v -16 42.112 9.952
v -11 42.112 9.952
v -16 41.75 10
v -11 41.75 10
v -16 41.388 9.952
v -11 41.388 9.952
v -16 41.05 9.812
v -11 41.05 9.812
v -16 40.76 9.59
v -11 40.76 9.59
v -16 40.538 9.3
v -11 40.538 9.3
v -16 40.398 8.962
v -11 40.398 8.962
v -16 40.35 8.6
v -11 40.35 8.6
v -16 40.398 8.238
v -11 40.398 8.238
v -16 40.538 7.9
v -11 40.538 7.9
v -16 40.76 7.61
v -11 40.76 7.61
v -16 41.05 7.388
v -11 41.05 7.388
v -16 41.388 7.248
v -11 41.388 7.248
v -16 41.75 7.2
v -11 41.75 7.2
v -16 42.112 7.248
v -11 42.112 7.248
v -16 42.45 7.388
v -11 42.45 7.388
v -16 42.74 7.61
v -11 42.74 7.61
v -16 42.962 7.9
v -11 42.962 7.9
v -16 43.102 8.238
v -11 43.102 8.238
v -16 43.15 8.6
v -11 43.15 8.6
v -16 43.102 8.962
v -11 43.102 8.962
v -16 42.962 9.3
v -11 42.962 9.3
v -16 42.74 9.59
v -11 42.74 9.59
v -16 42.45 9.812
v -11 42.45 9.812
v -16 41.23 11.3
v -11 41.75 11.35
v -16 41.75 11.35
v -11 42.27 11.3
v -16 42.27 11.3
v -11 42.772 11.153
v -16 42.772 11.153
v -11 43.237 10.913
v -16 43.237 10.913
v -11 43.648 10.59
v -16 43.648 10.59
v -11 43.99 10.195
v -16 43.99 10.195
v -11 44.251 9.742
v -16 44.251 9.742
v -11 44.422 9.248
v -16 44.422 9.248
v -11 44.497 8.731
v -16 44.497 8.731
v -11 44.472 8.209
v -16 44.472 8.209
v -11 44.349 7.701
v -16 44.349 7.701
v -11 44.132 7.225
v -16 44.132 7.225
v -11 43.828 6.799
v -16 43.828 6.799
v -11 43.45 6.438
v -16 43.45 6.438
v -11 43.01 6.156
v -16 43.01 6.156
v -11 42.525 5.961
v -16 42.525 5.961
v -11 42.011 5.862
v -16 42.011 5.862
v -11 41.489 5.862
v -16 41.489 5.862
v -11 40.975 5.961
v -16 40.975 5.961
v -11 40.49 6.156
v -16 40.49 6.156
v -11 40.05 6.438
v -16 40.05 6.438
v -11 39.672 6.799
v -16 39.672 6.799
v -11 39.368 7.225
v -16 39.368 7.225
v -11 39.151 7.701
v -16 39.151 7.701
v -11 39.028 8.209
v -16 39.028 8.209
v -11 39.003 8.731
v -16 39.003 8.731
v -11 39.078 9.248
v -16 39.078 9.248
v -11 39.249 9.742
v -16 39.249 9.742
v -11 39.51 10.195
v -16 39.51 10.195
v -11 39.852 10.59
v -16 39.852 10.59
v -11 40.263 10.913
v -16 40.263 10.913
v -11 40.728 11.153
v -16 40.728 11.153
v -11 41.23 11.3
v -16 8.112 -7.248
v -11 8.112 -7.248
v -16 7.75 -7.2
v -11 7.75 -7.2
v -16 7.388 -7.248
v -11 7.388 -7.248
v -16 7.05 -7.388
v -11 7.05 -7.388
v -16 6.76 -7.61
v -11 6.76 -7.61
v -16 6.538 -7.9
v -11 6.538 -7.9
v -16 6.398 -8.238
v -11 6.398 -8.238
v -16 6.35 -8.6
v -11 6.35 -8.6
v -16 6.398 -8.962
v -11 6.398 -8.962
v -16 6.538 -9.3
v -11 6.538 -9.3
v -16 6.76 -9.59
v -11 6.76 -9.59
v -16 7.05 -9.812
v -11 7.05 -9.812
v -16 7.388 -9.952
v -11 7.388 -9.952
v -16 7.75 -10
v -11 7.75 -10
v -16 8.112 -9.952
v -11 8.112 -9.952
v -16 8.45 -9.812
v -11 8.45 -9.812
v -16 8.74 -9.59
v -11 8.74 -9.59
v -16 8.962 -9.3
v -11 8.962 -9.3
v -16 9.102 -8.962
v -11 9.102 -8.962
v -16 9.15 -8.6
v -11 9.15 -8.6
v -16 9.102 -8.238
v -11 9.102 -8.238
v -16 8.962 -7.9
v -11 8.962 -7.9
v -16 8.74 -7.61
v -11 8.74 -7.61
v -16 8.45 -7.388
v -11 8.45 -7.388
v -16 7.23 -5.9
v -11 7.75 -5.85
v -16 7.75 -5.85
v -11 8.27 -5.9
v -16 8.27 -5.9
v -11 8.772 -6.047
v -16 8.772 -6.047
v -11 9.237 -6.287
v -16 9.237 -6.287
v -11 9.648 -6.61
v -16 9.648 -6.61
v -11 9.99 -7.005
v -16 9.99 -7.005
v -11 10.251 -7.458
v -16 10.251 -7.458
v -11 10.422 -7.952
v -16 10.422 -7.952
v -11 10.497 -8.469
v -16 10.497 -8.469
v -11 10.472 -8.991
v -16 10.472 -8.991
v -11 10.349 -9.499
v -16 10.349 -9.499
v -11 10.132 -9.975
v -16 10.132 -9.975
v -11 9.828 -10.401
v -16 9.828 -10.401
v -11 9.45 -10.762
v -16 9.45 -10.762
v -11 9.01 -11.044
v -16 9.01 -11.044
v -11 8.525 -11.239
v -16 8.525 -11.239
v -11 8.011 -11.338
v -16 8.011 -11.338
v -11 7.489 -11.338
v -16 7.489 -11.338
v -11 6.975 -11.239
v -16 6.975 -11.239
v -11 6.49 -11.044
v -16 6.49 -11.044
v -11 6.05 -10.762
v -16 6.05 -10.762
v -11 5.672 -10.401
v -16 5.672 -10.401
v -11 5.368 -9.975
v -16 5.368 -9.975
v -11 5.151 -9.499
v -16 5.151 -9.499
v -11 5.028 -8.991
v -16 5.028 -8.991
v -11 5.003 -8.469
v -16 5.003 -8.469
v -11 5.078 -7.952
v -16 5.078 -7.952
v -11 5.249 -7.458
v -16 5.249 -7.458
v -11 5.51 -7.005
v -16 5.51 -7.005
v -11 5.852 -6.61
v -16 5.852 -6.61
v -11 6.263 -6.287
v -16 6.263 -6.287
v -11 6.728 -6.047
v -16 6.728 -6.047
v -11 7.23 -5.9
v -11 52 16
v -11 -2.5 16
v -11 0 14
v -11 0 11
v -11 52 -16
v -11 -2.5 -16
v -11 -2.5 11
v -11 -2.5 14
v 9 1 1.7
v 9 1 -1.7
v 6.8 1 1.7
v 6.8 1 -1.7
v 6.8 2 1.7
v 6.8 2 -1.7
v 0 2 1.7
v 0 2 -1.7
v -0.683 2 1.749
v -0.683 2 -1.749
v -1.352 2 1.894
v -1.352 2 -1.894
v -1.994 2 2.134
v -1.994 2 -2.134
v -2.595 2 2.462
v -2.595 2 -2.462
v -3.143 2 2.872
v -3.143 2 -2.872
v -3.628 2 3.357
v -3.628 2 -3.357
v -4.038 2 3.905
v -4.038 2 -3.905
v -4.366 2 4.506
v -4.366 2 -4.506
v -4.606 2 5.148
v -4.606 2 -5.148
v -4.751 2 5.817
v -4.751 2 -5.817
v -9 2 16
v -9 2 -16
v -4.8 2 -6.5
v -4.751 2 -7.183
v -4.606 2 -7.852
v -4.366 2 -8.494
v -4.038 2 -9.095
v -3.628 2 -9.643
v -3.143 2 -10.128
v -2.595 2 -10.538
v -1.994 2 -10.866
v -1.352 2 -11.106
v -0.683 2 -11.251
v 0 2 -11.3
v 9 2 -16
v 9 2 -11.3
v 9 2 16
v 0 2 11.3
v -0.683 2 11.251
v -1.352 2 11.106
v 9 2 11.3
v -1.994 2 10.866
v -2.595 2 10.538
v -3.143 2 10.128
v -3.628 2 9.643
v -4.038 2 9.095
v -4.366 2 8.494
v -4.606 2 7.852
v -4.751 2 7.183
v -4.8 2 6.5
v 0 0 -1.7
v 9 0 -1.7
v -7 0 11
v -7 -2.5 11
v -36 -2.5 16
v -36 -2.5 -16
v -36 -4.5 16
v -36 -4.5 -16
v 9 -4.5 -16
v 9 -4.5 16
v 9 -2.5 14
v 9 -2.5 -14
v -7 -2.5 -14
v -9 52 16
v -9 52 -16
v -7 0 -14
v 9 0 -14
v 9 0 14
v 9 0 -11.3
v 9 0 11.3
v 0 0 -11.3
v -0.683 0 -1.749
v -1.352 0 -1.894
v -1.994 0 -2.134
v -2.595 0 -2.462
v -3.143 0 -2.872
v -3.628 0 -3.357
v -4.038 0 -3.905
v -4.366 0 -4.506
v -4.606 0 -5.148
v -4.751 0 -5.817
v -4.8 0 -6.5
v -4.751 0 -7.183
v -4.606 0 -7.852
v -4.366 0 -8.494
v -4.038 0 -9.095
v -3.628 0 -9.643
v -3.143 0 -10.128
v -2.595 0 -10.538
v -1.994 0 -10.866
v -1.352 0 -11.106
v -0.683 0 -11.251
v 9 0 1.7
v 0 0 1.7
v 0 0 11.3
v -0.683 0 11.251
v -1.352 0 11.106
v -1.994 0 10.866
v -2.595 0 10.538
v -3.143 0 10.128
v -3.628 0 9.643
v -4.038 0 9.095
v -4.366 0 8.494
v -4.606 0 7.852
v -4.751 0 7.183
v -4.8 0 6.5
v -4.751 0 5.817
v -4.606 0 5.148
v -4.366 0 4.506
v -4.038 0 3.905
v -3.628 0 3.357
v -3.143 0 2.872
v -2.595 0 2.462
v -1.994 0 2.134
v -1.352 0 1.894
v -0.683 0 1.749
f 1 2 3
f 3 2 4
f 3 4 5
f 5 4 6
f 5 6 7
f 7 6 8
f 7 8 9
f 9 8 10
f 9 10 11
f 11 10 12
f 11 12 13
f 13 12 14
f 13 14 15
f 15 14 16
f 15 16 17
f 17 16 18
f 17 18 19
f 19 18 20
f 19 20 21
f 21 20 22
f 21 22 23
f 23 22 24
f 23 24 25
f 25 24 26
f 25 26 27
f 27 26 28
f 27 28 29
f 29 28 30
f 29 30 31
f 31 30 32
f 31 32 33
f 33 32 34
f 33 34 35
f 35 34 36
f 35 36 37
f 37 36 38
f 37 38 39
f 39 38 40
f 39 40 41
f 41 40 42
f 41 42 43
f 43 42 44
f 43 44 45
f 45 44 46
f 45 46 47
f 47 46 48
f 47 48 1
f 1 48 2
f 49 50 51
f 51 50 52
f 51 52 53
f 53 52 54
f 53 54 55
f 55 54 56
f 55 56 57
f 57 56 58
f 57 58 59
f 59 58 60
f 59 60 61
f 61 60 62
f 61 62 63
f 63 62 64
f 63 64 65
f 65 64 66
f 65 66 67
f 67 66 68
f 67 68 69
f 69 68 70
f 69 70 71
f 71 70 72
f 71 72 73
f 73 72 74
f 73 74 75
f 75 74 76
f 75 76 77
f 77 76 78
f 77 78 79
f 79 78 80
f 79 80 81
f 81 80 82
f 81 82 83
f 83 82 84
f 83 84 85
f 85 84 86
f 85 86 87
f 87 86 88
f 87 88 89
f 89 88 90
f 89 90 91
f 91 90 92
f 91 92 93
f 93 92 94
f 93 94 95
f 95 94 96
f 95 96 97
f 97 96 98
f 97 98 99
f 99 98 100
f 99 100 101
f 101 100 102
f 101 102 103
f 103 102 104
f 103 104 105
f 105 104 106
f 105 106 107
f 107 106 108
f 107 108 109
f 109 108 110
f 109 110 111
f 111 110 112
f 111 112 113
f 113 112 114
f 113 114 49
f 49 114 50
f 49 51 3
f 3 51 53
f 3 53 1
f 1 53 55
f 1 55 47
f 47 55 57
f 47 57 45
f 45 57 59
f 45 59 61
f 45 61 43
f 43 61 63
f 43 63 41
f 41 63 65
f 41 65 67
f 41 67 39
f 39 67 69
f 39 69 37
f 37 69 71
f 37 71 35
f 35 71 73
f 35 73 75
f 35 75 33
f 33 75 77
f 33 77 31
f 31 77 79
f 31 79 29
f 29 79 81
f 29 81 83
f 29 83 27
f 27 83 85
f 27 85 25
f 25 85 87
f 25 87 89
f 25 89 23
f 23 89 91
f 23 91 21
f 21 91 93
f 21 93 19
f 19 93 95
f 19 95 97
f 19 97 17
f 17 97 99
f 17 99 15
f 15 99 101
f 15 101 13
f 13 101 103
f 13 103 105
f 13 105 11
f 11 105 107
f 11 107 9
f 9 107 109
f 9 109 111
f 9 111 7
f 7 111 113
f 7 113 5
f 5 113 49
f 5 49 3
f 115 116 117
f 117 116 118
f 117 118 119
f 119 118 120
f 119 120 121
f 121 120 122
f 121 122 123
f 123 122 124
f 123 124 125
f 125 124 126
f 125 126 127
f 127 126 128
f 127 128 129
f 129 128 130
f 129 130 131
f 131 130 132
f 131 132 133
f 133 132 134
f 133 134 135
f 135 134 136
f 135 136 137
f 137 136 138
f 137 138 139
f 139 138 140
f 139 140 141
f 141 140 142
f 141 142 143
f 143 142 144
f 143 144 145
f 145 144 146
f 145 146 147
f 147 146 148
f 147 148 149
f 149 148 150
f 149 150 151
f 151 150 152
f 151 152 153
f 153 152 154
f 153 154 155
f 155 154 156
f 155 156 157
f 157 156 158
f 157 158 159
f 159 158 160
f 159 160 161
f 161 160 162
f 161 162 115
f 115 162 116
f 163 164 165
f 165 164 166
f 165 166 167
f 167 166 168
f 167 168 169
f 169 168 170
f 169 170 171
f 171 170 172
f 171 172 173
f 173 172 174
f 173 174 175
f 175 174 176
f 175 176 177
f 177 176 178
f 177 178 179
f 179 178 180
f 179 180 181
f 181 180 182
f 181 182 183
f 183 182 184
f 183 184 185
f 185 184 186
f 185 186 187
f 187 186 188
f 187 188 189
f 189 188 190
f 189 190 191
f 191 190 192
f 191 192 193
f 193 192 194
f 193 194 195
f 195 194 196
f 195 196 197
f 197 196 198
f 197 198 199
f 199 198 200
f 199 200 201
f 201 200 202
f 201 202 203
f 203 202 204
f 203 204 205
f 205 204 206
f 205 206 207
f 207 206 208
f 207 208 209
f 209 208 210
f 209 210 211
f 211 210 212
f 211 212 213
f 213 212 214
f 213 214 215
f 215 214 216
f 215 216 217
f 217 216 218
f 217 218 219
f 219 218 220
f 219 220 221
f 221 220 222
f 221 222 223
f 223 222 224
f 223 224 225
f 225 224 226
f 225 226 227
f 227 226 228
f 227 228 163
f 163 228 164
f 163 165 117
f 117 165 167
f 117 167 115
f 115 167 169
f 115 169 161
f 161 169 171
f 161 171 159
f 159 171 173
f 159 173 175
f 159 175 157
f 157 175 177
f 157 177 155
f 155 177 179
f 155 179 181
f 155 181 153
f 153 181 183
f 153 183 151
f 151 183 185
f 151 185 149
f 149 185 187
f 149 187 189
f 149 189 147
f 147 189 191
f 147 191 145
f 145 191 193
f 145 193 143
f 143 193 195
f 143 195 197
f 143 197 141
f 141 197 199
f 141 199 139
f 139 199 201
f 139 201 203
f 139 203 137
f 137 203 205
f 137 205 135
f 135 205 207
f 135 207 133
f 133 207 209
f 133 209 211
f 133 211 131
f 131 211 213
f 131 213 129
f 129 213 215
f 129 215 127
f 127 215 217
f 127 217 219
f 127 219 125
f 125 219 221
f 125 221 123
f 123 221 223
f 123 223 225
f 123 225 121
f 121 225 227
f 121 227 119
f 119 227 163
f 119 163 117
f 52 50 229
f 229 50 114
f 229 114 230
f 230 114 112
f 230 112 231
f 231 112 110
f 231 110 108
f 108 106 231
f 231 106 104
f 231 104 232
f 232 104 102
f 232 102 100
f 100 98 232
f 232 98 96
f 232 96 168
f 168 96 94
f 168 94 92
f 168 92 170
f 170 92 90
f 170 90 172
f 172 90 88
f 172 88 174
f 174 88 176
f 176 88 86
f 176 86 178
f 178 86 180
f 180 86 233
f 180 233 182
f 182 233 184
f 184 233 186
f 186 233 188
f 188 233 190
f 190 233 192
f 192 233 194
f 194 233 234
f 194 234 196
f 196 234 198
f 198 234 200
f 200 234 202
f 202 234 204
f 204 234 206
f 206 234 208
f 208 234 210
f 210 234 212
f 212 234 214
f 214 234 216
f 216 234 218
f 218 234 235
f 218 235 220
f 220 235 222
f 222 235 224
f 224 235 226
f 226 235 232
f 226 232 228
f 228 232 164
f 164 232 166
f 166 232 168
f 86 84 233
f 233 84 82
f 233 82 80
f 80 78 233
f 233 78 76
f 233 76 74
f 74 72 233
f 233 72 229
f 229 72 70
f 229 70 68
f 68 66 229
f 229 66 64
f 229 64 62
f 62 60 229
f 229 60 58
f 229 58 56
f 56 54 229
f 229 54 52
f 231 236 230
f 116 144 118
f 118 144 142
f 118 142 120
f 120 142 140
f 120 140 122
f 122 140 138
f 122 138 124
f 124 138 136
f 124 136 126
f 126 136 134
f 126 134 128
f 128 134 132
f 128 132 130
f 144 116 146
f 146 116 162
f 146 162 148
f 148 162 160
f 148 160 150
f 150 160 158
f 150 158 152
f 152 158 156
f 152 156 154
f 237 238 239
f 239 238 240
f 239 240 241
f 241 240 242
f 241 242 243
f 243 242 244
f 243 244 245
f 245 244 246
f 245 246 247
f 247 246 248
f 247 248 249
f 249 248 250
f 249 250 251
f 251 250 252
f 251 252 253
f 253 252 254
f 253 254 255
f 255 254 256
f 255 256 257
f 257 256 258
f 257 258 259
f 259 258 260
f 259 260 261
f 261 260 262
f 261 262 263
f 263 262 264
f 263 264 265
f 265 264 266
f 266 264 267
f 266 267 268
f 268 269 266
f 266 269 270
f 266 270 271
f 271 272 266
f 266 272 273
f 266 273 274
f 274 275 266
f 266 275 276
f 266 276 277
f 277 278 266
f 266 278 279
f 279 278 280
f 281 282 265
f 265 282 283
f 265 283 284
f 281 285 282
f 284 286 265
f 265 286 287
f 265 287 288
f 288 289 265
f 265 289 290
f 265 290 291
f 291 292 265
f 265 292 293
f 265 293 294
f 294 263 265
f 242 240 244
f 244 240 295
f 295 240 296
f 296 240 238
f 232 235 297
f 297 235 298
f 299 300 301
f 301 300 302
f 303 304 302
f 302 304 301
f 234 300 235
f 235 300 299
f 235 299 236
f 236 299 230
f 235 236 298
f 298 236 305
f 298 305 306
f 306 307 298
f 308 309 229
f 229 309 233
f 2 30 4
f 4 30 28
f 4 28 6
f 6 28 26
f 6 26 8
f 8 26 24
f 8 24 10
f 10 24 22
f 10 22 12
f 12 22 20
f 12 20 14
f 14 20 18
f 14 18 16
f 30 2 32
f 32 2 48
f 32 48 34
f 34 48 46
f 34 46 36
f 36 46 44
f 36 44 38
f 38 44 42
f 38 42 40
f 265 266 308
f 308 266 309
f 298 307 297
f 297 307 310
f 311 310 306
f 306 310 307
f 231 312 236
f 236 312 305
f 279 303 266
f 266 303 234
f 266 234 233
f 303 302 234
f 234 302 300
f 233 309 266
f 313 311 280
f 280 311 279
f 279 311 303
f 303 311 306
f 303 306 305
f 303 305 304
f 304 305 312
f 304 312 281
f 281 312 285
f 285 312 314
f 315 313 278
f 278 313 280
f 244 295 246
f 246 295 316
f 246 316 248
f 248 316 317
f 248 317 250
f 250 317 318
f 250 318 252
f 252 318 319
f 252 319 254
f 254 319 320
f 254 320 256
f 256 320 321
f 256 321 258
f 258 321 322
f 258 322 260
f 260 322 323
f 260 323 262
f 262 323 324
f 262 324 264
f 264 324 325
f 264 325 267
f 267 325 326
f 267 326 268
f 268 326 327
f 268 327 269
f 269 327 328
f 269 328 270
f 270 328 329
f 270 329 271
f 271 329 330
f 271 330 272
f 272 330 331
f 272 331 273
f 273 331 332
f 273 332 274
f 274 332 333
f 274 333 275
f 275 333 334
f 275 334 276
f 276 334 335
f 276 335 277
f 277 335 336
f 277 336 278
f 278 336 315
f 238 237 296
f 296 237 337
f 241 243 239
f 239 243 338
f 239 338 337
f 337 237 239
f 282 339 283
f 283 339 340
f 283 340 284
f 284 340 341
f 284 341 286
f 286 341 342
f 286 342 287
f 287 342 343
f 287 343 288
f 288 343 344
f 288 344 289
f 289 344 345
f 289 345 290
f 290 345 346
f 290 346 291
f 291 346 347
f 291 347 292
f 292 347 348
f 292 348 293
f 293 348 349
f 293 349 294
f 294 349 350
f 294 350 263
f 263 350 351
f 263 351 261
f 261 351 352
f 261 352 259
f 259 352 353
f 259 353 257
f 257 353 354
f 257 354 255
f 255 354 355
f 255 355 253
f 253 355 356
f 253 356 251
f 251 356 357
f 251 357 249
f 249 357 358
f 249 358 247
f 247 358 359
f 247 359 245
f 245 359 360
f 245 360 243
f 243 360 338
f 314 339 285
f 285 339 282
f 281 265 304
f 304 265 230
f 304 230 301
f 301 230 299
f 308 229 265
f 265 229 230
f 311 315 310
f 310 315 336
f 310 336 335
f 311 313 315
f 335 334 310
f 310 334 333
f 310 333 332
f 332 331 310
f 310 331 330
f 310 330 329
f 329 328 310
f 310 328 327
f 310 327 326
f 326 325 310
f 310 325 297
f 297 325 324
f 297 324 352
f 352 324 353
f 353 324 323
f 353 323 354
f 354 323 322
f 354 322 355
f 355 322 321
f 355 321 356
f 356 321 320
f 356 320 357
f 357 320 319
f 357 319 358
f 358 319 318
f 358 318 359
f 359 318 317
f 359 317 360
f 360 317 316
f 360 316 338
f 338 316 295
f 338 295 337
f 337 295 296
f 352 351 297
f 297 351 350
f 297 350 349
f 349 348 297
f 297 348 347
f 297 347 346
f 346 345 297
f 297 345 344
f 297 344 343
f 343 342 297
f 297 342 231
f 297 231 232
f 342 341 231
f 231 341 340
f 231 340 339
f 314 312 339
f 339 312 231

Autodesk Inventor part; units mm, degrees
ref_plane "YZ Plane" through (0, 0, 0) normal (1, 0, 0) x (0, 1, 0)
ref_plane "XZ Plane" through (0, 0, 0) normal (0, 1, 0) x (-1, 0, 0)
ref_plane "XY Plane" through (0, 0, 0) normal (0, 0, 1) x (1, 0, 0)
sketch "Sketch1" plane through (0, 0, 0) normal (0, 1, 0) x (-1, 0, 0)
  line L0 (9, -16) -> (-9, -16)
  line L1 (-9, -16) -> (-9, 16)
  line L2 (-9, 16) -> (9, 16)
  line L3 (9, 16) -> (9, -16)
  line L4 (9, -16) -> (-9, 16) construction
  line L5 (-9, -16) -> (9, 16) construction
  circle A0 centre (0, 6.5) radius 4.8
  line L6 (0, 6.5) -> (0, -6.5)
  circle A1 centre (0, -6.5) radius 4.8
  line L7 (0, 11.3) -> (-9, 11.3)
  line L8 (0, 1.7) -> (-9, 1.7)
  line L9 (0, -1.7) -> (-9, -1.7)
  line L10 (0, -11.3) -> (-9, -11.3)
  point P0 (0, 0)
  point P1 (0, 0)
  dimension "d0" = 18
  dimension "d1" = 32
  dimension "d2" = 9.6
  dimension "d3" = 13
  dimension "d4" = 9.6
extrude "Extrusion1" add sketch "Sketch1" along normal blind 2 contours L0 L1 L10 A1 L6 A0 L7 L2 L3 | L1 L8 L6 L9
sketch "Sketch2" plane through (0, 0, 0) normal (0, -1, 0) x (1, 0, 0)
  line L0 (-9, 16) -> (9, 16) projected
  line L1 (9, 16) -> (-9, 16)
  line L2 (-9, -16) -> (-9, 16) projected
  line L3 (-9, 16) -> (-9, -16)
  line L4 (9, -16) -> (-9, -16) projected
  line L5 (-9, -16) -> (9, -16)
  line L6 (9, -16) -> (9, -14)
  line L7 (9, -11.3) -> (9, -16) projected
  line L8 (9, -14) -> (-7, -14)
  line L9 (-7, -14) -> (-7, 14)
  line L10 (-7, 14) -> (9, 14)
  line L11 (9, 16) -> (9, 11.3) projected
  point P0 (0, 0)
  dimension "d7" = 2
  dimension "d8" = 16
  dimension "d9" = 28
extrude "Extrusion2" add sketch "Sketch2" along normal blind 2.5
sketch "Sketch3" plane through (-9, 2, -16) normal (-1, 0, 0) x (0, 0, 1)
  line L0 (0, 0) -> (0, -4.5) projected
  line L1 (0, -4.5) -> (32, -4.5)
  line L2 (32, -4.5) -> (32, 50)
  line L3 (32, 50) -> (0, 50)
  line L4 (0, 50) -> (0, -4.5)
  point P0 (16, -2)
  dimension "d12" = 54.5
extrude "Extrusion3" add sketch "Sketch3" along normal blind 2
sketch "Sketch4" plane through (0, -2.5, 0) normal (0, -1, 0) x (1, 0, 0)
  line L0 (9, 16) -> (9, 11.3) projected
  line L1 (9, 16) -> (-36, 16)
  line L2 (-36, 16) -> (-36, -16)
  line L3 (-36, -16) -> (9, -16)
  line L4 (9, -16) -> (9, 16)
  point P0 (0, 0)
  dimension "d15" = 45
extrude "Extrusion4" add sketch "Sketch4" along normal blind 2
sketch "Sketch5" plane through (-7, 0, 14) normal (1, 0, 0) x (0, 0, -1)
  line L0 (0, 0) -> (0, -2.5) projected
  line L1 (30, -2.5) -> (-2, -2.5) projected
  line L2 (0, 0) -> (3, 0)
  line L3 (3, 0) -> (3, -2.5)
  line L4 (3, -2.5) -> (0, -2.5)
  line L5 (0, -2.5) -> (0, 0)
  point P0 (14, 0)
  dimension "d18" = 3
extrude "Extrusion5" cut sketch "Sketch5" against normal up to surface (4 mm away)
sketch "Sketch6" plane through (9, 0, 1.7) normal (1, 0, 0) x (0, 0, -1)
  line L0 (0, 0) -> (0, 2) projected
  line L1 (3.4, 0) -> (3.4, 2) projected
  line L2 (0, 1) -> (3.4, 1)
  line L3 (3.4, 1) -> (3.4, 2)
  line L4 (3.4, 2) -> (0, 2)
  line L5 (0, 2) -> (0, 1)
  point P0 (1.7, 0)
extrude "Extrusion6" cut sketch "Sketch6" against normal blind 2.2
sketch "Sketch8" plane through (-11, 2, -16) normal (-1, 0, 0) x (0, 0, 1)
  circle A0 centre (24.6, 39.75) radius 2.75
  circle A1 centre (24.6, 39.75) radius 1.4
  line L0 (4, 47.25) -> (28, 47.25) construction
  line L1 (28, 47.25) -> (28, -1.75) construction
  line L2 (28, -1.75) -> (4, -1.75) construction
  line L3 (4, -1.75) -> (4, 47.25) construction
  circle A2 centre (7.4, 5.75) radius 2.75
  circle A3 centre (7.4, 5.75) radius 1.4
  line L4 (4, 47.25) -> (28, -1.75) construction
  line L5 (32, -4.5) -> (32, -6.5) construction
  line L6 (32, 50) -> (0, 50) construction
  line L7 (0, -4.5) -> (32, 50) construction
  point P0 (16, -2)
  point P1 (16, 22.75)
  point P2 (16, 22.75)
  dimension "d24" = 5.5
  dimension "d25" = 2.8
  dimension "d26" = 24
  dimension "d27" = 49
  dimension "d28" = 3.4
  dimension "d29" = 7.5
  dimension "d30" = 5.5
  dimension "d31" = 2.8
  dimension "d32" = 3.4
  dimension "d33" = 7.5
extrude "Extrusion7" add sketch "Sketch8" along normal blind 5
properties part number "prototype7_1"
